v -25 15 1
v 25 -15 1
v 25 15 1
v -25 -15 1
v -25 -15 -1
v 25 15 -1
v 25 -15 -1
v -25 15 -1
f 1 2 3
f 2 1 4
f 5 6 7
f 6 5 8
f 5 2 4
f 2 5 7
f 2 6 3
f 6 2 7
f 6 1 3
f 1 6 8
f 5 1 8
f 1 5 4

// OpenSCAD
// Parameters for the rectangular plate
plate_length = 50;  // Length of the plate
plate_width = 30;   // Width of the plate
plate_thickness = 2; // Thickness of the plate

// Function to create a rectangular plate
module rectangular_plate() {
    cube([plate_length, plate_width, plate_thickness], center = true);
}

// Generate a single rectangular plate
rectangular_plate();
